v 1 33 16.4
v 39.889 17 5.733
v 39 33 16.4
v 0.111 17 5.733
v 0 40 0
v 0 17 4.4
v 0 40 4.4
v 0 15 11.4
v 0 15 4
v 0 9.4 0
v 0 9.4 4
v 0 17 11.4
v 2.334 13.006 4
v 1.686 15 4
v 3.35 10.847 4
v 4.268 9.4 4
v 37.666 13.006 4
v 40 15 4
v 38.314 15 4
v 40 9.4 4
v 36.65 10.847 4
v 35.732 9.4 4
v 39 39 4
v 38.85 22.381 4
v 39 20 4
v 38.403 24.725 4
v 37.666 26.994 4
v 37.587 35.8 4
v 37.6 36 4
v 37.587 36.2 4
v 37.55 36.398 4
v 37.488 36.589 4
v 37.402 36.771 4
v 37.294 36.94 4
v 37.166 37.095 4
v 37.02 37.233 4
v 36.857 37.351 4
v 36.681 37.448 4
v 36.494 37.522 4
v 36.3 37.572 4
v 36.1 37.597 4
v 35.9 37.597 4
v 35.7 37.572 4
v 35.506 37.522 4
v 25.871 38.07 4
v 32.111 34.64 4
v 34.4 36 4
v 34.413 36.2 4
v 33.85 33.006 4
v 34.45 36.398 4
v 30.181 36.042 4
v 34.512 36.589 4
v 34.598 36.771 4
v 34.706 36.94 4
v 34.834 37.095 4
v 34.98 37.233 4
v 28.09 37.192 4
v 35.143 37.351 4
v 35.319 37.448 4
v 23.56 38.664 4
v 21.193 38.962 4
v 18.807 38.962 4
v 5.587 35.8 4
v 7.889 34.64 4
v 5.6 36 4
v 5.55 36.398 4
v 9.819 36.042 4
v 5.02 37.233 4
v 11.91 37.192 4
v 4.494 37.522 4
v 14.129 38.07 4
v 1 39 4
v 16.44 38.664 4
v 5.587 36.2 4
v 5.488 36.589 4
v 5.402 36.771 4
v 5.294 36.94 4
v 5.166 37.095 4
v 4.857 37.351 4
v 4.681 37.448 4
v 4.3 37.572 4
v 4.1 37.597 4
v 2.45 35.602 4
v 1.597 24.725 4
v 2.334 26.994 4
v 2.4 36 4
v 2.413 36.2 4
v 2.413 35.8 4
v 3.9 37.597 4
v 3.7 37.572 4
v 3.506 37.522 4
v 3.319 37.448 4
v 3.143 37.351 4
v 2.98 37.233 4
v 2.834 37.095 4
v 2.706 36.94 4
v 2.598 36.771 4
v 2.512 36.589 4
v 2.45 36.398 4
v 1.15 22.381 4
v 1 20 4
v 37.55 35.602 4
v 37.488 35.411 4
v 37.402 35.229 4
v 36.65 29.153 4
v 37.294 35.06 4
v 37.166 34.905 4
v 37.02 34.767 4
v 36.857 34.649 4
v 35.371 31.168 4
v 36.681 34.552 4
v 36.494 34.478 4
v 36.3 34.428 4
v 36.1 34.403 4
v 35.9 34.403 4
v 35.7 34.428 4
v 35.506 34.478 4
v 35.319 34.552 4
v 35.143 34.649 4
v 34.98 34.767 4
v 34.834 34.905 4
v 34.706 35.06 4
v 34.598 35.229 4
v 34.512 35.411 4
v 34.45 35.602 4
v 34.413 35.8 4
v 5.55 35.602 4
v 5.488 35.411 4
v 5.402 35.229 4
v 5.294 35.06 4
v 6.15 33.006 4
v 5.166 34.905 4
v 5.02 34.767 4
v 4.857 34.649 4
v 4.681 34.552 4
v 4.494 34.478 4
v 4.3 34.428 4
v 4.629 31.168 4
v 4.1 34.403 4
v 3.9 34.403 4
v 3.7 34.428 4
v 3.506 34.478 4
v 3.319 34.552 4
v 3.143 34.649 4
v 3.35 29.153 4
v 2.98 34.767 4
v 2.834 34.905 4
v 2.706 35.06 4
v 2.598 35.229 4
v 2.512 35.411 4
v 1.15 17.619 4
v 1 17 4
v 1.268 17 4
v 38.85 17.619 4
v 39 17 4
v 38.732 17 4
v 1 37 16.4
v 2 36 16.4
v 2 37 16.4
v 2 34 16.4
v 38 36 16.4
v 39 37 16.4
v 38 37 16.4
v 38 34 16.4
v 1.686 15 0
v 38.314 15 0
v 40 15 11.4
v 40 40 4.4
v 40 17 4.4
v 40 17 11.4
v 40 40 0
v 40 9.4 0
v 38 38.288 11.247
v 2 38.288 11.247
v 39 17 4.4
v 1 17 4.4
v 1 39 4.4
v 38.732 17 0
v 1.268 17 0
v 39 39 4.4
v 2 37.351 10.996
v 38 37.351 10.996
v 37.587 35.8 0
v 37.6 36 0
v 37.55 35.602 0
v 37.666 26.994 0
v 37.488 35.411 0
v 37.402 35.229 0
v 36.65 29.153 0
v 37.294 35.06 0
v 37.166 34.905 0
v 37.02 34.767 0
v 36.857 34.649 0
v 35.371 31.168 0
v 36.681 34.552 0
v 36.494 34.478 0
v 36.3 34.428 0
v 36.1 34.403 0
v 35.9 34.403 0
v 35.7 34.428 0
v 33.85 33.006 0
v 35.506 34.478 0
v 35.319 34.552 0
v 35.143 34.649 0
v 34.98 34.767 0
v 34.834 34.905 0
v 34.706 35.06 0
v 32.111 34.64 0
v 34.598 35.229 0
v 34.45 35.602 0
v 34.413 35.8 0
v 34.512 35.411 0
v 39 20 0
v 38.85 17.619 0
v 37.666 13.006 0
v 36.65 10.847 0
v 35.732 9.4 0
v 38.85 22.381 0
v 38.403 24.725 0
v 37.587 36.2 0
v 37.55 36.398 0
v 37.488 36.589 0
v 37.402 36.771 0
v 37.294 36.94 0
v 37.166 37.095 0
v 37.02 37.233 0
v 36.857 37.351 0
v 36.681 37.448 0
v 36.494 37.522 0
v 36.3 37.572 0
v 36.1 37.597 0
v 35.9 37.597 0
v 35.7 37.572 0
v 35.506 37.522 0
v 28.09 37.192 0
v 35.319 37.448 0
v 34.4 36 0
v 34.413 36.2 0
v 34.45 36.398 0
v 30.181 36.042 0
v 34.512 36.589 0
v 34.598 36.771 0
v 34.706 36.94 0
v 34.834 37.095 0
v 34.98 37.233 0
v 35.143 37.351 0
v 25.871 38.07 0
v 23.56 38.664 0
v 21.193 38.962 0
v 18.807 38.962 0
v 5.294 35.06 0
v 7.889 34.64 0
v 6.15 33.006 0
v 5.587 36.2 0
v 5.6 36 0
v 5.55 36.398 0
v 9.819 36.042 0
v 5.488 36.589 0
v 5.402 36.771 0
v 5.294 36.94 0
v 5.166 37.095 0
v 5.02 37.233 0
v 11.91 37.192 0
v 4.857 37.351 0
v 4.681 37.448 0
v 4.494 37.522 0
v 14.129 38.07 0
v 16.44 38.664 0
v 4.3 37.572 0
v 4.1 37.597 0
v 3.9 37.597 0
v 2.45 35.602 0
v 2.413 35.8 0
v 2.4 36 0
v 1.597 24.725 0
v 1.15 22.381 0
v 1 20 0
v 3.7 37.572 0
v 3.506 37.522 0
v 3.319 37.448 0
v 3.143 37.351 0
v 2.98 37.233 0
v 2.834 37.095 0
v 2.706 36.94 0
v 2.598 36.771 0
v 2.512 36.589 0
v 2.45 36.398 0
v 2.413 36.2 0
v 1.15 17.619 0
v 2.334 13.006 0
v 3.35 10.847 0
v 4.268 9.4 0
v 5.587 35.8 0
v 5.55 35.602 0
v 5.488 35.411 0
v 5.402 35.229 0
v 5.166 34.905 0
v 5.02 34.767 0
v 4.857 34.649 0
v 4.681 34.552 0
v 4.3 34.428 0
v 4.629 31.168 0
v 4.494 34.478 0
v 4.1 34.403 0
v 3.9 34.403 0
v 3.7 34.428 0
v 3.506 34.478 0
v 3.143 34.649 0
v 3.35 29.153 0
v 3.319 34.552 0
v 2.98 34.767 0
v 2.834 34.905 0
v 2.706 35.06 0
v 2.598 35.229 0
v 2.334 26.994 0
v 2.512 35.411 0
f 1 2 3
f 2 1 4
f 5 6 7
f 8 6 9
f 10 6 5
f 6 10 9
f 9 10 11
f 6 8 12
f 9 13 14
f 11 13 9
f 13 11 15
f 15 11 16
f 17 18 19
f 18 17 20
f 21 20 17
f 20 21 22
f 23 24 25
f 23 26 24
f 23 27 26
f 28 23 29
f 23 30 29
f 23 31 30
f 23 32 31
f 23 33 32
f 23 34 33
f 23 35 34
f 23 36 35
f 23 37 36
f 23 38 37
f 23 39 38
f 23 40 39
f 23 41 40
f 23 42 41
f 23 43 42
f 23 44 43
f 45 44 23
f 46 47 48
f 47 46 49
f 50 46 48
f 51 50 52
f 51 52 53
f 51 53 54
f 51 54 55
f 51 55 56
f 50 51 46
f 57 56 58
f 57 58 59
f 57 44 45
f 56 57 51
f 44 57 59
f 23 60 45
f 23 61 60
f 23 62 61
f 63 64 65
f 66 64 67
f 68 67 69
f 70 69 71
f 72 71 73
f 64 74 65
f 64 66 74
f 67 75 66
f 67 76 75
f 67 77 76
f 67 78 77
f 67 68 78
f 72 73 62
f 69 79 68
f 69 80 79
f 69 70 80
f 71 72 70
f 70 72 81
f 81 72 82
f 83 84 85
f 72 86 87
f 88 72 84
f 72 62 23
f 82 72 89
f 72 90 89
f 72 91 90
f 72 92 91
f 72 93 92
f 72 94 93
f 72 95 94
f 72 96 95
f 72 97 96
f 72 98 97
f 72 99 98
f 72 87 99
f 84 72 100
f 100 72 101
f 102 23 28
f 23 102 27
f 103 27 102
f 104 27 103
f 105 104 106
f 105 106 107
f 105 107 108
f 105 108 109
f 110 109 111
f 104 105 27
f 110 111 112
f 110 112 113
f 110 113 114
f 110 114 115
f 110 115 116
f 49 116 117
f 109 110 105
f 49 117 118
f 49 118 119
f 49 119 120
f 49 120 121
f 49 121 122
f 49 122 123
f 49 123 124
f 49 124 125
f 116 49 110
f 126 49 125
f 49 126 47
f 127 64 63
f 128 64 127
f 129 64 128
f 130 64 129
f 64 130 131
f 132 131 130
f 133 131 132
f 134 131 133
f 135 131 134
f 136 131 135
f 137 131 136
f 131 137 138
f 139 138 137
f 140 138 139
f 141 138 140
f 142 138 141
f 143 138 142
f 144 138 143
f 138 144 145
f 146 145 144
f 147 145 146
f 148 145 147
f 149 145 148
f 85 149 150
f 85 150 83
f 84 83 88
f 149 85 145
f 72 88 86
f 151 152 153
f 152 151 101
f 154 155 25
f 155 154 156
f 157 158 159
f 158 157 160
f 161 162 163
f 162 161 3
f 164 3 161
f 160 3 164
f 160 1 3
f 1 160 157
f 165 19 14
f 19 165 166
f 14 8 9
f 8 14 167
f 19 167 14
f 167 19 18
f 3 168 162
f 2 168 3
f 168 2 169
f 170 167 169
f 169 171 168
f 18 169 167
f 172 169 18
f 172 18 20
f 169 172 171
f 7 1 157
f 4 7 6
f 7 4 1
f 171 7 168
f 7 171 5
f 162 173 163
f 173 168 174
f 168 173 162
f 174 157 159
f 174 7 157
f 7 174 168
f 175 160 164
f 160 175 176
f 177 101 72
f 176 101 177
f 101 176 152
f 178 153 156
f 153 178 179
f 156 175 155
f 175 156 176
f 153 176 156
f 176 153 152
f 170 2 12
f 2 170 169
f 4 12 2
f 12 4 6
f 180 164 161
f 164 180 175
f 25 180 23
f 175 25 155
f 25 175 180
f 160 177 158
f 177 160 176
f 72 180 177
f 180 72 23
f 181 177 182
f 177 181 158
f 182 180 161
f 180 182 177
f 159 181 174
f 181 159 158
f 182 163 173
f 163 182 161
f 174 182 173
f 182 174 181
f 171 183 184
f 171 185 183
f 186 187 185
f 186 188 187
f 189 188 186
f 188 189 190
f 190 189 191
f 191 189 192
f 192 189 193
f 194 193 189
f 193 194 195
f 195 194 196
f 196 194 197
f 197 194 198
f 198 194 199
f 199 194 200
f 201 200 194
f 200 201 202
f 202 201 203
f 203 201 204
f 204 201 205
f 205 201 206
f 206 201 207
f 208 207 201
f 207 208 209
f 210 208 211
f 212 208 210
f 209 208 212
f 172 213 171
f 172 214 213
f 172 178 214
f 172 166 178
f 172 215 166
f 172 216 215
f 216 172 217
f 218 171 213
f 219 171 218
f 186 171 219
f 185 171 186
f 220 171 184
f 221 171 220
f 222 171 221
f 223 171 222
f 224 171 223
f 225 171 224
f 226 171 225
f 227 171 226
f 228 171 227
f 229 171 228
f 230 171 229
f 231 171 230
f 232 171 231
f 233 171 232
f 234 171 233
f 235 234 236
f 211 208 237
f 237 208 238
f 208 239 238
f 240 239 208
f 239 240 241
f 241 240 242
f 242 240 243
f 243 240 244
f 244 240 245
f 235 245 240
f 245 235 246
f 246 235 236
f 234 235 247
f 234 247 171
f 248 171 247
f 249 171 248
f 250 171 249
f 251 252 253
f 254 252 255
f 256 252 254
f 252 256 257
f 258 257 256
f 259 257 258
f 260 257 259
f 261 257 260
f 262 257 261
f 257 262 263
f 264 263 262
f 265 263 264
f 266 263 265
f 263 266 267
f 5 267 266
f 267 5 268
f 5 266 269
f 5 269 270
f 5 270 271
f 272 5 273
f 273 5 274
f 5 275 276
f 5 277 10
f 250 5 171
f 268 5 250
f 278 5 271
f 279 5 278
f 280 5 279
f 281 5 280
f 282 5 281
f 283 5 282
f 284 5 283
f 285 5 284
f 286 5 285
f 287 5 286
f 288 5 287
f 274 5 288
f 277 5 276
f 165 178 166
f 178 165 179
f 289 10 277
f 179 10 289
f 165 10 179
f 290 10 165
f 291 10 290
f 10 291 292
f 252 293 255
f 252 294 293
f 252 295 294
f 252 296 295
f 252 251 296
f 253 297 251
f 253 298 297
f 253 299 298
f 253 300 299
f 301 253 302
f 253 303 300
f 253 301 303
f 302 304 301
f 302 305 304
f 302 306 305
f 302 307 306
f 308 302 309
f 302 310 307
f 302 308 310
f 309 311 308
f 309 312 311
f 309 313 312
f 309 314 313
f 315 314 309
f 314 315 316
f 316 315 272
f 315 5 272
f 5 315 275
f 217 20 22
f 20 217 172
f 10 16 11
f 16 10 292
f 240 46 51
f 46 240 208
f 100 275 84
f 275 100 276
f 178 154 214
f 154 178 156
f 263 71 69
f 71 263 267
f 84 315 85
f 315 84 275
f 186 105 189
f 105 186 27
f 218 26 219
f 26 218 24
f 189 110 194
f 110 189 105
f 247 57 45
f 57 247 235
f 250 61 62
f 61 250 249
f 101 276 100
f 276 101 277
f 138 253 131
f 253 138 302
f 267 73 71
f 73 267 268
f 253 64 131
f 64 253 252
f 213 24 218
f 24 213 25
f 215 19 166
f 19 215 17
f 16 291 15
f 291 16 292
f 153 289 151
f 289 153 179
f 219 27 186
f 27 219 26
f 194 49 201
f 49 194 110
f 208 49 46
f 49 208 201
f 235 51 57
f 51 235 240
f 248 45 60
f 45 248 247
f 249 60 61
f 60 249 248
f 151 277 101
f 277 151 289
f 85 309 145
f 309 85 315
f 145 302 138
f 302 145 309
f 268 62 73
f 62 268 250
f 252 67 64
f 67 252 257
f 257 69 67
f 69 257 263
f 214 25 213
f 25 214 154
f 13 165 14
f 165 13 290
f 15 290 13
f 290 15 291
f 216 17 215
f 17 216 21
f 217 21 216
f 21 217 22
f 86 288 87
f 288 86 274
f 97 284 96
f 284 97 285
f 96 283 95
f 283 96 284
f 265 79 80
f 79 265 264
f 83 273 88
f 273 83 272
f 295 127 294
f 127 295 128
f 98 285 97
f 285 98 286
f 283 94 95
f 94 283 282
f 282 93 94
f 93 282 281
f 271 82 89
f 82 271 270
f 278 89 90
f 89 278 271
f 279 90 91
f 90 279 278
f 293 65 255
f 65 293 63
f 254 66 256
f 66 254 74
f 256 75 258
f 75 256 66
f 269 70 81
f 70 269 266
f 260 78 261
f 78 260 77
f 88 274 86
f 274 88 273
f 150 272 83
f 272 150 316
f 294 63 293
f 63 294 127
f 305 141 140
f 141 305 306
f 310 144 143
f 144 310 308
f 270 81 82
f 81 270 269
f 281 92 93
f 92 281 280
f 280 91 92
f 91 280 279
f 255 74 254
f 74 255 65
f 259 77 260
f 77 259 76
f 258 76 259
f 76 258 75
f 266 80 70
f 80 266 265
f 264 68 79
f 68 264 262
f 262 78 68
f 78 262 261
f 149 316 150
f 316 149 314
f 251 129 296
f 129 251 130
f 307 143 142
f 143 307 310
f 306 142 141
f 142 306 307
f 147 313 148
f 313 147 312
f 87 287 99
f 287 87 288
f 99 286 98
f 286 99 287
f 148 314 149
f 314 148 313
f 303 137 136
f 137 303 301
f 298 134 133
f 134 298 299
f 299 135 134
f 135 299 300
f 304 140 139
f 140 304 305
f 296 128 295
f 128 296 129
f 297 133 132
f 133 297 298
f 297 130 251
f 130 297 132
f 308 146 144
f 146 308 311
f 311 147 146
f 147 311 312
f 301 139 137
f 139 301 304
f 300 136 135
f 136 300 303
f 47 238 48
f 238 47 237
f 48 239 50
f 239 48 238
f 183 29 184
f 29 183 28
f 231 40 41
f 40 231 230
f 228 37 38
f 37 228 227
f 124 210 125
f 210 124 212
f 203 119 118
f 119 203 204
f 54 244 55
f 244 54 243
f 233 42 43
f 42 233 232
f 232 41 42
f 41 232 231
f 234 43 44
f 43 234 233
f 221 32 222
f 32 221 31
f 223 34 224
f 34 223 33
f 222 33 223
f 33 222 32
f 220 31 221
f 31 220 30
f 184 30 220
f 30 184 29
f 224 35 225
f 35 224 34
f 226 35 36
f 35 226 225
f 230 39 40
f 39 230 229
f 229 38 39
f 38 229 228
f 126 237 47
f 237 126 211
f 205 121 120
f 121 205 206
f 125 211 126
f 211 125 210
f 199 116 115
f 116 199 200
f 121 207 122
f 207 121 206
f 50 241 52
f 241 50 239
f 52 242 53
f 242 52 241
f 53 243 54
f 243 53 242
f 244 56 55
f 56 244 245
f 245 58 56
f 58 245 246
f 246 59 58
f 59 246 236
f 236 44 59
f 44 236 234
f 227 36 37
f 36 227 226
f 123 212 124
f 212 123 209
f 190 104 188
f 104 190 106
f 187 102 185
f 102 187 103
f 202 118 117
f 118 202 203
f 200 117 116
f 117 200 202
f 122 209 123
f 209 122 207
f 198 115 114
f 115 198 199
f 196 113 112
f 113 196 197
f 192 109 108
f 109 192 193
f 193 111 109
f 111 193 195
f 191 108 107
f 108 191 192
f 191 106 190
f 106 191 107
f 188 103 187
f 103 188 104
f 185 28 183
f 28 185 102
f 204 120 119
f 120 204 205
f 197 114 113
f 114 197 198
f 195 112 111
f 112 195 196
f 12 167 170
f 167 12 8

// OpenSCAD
// file: lib/nutsnbolts/data-access.scad
// Norm Nuts and Bolts - a OpenSCAD library
// Copyright (C) 2012  Johannes Kneer

// This program is free software: you can redistribute it and/or modify
// it under the terms of the GNU General Public License as published by
// the Free Software Foundation, either version 3 of the License, or
// (at your option) any later version.

// This program is distributed in the hope that it will be useful,
// but WITHOUT ANY WARRANTY; without even the implied warranty of
// MERCHANTABILITY or FITNESS FOR A PARTICULAR PURPOSE.  See the
// GNU General Public License for more details.

// You should have received a copy of the GNU General Public License
// along with this program.  If not, see <http://www.gnu.org/licenses/>.


// DATABASE ACCESS FUNCTIONS AND CONSTANTS



// == CONSTANTS ==

// screw table access keys
_NB_S_DESC            = 0;
_NB_S_FAMKEY			    = 1;
_NB_S_LENGTH          = 2;
_NB_S_NOTHREAD_LENGTH = 3;

_NB_F_DESC			      = 0;
_NB_F_OUTER_DIA       = 1;
_NB_F_INNER_DIA       = 2;
_NB_F_LEAD            = 3;
_NB_F_KEY             = 4;
_NB_F_KEY_DEPTH       = 5;
_NB_F_HEAD_HEIGHT     = 6;
_NB_F_HEAD_DIA        = 7;
_NB_F_NUT_KEY         = 8;
_NB_F_NUT_HEIGHT      = 9;
_NB_F_PITCH_FINE      = 10;
_NB_F_PITCH_MEDIUM    = 11;
_NB_F_PITCH_COARSE    = 12;


// == FUNCTIONS ==

// _get_screw("descriptor")   with descriptor = M8x25
//   find the line for a general object in the data matrix

function _get_screw(n) = data_screw[search([n], data_screw)[0]];
function _get_screw_fam(n) = data_screw_fam[search([_get_screw(n)[_NB_S_FAMKEY]], data_screw_fam)[0]];

function _get_fam(n) = data_screw_fam[search([n], data_screw_fam)[0]];


// _get_XXXXX("descriptor") functions
// find a single property in the database

function _get_desc(n)        = _get_screw(n)[_NB_S_DESC];
function _get_famkey(n)         = _get_screw(n)[_NB_S_FAMKEY];
function _get_length(n)      = _get_screw(n)[_NB_S_LENGTH];
function _get_nt_length(n)   = _get_screw(n)[_NB_S_NOTHREAD_LENGTH];

function _get_outer_dia(n)   = _get_screw_fam(n)[_NB_F_OUTER_DIA];
function _get_inner_dia(n)   = _get_screw_fam(n)[_NB_F_INNER_DIA];
function _get_lead(n)        = _get_screw_fam(n)[_NB_F_LEAD];
function _get_head_height(n) = _get_screw_fam(n)[_NB_F_HEAD_HEIGHT];
function _get_head_dia(n)    = _get_screw_fam(n)[_NB_F_HEAD_DIA];
function _get_nut_key(n)     = _get_screw_fam(n)[_NB_F_NUT_KEY];
function _get_nut_height(n)  = _get_screw_fam(n)[_NB_F_NUT_HEIGHT];
function _get_fine_pitch(n)  = _get_screw_fam(n)[_NB_F_PITCH_FINE];
function _get_medium_pitch(n)  = _get_screw_fam(n)[_NB_F_PITCH_MEDIUM];
function _get_coarse_pitch(n)  = _get_screw_fam(n)[_NB_F_PITCH_COARSE];
// file: globals.scad
// Global variables

$fn = 50;
clearance = 0.4; // Nozzle width
// main file
include <globals.scad>
include <lib/nutsnbolts/cyl_head_bolt.scad>;

module fan_duct() {
    difference(){
        cube([40,40,4]);
        cube([40,9+clearance,4]);
        translate([20,20,0])cylinder(d=38,h=4);
        translate([4,36,0])rotate([0,180,0])hole_threaded("M3",l=5,cltd=3*clearance);
        translate([36,36,0])rotate([0,180,0])hole_threaded("M3",l=5,cltd=3*clearance);
    }
    translate([0,15,0])cube([40,2,11.4]);
    difference(){
        hull(){
            translate([0,15,4])cube([40,25,0.4]);
            translate([1,33,16])cube([38,4,0.4]);
        }
        hull(){
            translate([1,17,4])cube([38,22,0.4]);
            translate([2,34,16])cube([36,2,0.4]);
        }
        translate([2,31,30])rotate([-75,0,0])cube([36,20,4]);
    }
}

fan_duct();
